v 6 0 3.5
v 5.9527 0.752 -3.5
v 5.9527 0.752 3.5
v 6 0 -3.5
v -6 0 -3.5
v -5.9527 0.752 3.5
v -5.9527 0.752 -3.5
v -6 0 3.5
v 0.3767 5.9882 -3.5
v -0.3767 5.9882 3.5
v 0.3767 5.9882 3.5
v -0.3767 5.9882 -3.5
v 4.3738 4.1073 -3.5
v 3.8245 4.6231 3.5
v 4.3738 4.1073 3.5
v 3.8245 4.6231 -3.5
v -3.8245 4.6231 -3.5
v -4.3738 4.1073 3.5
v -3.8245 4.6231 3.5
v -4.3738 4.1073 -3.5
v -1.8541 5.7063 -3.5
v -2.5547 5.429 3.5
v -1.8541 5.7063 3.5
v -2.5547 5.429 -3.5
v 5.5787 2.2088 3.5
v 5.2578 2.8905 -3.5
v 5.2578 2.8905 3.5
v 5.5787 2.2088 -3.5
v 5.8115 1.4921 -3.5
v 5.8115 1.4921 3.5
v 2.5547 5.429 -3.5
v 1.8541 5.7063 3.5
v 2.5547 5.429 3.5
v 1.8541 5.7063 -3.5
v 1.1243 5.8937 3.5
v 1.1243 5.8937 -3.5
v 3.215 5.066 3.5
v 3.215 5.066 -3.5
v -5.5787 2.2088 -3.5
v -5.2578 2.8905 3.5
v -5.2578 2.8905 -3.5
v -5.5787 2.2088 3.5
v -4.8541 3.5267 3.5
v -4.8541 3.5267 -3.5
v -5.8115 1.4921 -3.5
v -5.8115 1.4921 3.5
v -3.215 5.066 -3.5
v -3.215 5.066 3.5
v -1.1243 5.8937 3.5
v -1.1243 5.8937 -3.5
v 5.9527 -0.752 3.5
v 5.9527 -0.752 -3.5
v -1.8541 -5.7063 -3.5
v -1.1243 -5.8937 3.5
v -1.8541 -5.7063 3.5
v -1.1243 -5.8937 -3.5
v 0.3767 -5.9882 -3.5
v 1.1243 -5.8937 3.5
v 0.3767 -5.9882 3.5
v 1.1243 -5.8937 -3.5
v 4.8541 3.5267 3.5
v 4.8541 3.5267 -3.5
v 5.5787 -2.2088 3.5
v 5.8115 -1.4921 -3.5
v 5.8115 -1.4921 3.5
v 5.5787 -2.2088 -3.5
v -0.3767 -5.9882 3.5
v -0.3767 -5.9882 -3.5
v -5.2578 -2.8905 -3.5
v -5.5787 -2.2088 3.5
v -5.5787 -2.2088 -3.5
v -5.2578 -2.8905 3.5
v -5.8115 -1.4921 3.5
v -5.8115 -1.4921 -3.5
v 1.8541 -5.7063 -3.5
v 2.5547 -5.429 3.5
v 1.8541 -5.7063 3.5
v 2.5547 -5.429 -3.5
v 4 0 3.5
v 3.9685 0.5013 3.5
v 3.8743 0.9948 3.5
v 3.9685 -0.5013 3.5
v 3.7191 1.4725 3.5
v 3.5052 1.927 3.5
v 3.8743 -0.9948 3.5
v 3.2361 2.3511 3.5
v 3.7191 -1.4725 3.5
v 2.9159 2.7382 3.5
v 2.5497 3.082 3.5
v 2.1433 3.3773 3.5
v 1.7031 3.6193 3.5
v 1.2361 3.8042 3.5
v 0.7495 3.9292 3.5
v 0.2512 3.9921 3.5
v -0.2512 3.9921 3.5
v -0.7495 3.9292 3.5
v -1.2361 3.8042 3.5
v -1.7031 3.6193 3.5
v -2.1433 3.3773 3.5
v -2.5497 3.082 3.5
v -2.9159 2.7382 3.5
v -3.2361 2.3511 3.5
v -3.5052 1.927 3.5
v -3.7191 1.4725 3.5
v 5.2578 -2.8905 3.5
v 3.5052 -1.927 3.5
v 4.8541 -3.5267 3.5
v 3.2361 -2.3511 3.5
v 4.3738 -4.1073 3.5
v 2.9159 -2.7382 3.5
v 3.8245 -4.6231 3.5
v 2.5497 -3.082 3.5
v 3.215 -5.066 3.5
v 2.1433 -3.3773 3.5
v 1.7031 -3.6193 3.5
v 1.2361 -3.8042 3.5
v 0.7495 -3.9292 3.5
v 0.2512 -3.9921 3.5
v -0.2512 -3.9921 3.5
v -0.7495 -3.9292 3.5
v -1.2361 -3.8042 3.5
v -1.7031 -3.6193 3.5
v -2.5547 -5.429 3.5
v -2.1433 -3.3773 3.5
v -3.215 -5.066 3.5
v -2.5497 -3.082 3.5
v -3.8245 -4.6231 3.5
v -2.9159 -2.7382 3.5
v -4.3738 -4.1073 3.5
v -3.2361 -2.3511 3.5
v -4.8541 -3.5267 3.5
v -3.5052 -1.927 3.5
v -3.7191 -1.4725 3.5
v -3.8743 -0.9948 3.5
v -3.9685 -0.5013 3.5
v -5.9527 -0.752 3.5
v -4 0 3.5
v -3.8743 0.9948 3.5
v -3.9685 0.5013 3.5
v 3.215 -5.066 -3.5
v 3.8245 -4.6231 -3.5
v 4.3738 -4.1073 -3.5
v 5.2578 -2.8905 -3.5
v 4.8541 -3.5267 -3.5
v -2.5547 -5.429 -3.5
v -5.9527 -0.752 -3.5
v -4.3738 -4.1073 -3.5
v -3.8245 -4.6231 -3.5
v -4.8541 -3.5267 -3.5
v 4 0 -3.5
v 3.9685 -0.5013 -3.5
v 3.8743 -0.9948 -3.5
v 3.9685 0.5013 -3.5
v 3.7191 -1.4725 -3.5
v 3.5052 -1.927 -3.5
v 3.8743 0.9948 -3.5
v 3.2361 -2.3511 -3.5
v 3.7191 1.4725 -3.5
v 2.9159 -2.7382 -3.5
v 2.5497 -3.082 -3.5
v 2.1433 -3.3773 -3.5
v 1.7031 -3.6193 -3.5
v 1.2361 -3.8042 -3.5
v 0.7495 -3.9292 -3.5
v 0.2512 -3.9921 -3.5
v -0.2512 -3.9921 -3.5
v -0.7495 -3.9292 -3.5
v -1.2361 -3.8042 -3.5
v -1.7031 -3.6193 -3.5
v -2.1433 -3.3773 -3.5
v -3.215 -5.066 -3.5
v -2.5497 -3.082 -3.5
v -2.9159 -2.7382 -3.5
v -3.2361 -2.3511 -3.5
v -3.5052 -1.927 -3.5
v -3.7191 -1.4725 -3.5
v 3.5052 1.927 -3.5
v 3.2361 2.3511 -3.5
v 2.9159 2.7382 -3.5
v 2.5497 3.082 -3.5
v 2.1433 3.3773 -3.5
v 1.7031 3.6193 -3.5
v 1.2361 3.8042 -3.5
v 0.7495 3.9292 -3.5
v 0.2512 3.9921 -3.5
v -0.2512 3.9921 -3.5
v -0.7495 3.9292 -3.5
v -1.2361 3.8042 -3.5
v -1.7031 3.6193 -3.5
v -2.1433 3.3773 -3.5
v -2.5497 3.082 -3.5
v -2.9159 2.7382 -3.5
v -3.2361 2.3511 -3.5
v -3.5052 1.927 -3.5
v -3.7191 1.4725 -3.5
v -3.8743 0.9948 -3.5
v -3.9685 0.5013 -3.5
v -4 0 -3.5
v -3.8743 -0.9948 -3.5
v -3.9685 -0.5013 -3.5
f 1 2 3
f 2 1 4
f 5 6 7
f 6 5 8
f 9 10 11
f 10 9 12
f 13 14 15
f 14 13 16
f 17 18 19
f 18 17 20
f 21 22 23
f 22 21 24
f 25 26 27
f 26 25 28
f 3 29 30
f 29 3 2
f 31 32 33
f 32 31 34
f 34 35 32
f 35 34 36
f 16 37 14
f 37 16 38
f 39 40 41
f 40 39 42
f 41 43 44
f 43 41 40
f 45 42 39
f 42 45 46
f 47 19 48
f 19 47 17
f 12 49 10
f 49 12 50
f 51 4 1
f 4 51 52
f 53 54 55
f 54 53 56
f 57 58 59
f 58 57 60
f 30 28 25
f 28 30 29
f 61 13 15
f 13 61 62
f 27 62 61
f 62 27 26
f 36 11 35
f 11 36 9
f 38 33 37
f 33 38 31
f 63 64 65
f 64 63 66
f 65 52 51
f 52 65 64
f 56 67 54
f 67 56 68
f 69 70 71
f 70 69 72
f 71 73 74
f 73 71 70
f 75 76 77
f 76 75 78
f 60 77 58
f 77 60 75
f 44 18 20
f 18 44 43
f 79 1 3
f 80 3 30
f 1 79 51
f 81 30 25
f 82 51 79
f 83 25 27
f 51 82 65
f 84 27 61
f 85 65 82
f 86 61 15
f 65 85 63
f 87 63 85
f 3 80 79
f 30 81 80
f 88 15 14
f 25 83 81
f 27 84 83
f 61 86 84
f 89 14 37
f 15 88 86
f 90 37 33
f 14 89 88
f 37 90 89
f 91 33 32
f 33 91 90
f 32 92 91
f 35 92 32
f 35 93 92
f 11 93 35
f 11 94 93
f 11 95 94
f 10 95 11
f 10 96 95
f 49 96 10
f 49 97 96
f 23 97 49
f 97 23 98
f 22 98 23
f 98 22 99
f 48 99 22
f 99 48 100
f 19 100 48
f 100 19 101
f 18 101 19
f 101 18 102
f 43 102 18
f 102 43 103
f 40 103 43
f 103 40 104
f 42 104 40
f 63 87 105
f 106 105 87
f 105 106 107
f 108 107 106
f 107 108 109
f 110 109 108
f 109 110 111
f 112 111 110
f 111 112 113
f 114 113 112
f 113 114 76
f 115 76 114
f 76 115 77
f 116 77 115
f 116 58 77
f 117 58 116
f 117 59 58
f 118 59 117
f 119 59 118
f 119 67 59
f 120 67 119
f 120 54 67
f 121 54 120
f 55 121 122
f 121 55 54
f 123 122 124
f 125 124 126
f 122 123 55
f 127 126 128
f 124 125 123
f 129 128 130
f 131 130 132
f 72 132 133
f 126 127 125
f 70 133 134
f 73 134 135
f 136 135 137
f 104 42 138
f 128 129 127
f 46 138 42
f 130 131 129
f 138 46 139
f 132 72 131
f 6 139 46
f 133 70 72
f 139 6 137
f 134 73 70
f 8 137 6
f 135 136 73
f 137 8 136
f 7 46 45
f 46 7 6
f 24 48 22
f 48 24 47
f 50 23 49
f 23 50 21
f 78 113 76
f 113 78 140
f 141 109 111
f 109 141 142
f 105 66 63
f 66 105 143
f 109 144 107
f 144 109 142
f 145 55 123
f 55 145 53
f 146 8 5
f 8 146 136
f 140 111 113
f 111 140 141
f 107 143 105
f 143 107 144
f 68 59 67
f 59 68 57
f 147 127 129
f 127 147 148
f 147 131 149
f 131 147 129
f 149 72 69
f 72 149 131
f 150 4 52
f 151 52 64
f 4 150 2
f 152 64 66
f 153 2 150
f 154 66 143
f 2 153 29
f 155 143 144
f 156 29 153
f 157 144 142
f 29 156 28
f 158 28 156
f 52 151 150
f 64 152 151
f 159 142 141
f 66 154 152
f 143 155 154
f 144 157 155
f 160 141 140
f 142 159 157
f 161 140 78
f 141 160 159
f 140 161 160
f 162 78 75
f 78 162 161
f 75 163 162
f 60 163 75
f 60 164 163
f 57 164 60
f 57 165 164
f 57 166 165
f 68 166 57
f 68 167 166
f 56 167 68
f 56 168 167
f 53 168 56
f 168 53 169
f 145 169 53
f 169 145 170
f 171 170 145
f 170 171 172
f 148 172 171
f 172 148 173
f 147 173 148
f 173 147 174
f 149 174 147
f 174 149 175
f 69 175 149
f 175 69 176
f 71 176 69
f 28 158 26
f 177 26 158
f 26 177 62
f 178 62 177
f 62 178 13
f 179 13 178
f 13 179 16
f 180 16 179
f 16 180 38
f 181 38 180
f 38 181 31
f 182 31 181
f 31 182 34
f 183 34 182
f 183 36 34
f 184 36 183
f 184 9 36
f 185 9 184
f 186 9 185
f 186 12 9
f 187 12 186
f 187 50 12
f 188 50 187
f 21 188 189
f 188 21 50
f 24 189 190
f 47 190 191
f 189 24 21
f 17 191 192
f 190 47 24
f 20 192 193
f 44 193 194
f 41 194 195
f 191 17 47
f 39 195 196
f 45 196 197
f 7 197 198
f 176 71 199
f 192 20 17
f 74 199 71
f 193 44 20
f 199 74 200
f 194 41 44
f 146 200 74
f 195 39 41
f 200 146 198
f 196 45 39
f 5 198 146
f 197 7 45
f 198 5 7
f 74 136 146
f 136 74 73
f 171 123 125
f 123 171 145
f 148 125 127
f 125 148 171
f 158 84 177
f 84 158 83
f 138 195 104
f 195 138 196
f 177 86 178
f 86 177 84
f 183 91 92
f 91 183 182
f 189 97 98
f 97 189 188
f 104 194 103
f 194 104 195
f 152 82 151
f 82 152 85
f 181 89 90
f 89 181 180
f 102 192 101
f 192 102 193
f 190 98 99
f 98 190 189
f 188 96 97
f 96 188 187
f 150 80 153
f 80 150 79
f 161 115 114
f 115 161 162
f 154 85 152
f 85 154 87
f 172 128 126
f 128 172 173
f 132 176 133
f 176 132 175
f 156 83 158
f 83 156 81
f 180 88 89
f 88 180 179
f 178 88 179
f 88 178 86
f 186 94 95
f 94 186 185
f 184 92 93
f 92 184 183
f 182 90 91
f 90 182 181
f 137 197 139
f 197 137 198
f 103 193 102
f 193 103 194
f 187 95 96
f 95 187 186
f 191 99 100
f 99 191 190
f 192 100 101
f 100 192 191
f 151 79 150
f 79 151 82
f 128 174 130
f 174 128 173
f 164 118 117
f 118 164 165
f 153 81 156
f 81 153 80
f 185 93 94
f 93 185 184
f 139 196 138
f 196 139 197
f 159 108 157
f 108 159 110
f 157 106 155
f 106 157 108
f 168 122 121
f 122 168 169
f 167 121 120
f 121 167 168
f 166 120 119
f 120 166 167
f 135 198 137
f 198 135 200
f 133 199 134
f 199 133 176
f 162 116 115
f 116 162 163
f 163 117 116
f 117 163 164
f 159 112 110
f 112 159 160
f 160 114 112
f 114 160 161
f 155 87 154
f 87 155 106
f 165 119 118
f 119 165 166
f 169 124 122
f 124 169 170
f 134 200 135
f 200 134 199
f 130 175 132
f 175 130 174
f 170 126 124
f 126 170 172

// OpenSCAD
$fn = 50;


difference() {
	union() {
		translate(v = [0, 0, -3.5000000000]) {
			cylinder(h = 7, r = 6.0000000000);
		}
	}
	union() {
		translate(v = [0, 0, -100.0000000000]) {
			cylinder(h = 200, r = 4.0000000000);
		}
	}
}
